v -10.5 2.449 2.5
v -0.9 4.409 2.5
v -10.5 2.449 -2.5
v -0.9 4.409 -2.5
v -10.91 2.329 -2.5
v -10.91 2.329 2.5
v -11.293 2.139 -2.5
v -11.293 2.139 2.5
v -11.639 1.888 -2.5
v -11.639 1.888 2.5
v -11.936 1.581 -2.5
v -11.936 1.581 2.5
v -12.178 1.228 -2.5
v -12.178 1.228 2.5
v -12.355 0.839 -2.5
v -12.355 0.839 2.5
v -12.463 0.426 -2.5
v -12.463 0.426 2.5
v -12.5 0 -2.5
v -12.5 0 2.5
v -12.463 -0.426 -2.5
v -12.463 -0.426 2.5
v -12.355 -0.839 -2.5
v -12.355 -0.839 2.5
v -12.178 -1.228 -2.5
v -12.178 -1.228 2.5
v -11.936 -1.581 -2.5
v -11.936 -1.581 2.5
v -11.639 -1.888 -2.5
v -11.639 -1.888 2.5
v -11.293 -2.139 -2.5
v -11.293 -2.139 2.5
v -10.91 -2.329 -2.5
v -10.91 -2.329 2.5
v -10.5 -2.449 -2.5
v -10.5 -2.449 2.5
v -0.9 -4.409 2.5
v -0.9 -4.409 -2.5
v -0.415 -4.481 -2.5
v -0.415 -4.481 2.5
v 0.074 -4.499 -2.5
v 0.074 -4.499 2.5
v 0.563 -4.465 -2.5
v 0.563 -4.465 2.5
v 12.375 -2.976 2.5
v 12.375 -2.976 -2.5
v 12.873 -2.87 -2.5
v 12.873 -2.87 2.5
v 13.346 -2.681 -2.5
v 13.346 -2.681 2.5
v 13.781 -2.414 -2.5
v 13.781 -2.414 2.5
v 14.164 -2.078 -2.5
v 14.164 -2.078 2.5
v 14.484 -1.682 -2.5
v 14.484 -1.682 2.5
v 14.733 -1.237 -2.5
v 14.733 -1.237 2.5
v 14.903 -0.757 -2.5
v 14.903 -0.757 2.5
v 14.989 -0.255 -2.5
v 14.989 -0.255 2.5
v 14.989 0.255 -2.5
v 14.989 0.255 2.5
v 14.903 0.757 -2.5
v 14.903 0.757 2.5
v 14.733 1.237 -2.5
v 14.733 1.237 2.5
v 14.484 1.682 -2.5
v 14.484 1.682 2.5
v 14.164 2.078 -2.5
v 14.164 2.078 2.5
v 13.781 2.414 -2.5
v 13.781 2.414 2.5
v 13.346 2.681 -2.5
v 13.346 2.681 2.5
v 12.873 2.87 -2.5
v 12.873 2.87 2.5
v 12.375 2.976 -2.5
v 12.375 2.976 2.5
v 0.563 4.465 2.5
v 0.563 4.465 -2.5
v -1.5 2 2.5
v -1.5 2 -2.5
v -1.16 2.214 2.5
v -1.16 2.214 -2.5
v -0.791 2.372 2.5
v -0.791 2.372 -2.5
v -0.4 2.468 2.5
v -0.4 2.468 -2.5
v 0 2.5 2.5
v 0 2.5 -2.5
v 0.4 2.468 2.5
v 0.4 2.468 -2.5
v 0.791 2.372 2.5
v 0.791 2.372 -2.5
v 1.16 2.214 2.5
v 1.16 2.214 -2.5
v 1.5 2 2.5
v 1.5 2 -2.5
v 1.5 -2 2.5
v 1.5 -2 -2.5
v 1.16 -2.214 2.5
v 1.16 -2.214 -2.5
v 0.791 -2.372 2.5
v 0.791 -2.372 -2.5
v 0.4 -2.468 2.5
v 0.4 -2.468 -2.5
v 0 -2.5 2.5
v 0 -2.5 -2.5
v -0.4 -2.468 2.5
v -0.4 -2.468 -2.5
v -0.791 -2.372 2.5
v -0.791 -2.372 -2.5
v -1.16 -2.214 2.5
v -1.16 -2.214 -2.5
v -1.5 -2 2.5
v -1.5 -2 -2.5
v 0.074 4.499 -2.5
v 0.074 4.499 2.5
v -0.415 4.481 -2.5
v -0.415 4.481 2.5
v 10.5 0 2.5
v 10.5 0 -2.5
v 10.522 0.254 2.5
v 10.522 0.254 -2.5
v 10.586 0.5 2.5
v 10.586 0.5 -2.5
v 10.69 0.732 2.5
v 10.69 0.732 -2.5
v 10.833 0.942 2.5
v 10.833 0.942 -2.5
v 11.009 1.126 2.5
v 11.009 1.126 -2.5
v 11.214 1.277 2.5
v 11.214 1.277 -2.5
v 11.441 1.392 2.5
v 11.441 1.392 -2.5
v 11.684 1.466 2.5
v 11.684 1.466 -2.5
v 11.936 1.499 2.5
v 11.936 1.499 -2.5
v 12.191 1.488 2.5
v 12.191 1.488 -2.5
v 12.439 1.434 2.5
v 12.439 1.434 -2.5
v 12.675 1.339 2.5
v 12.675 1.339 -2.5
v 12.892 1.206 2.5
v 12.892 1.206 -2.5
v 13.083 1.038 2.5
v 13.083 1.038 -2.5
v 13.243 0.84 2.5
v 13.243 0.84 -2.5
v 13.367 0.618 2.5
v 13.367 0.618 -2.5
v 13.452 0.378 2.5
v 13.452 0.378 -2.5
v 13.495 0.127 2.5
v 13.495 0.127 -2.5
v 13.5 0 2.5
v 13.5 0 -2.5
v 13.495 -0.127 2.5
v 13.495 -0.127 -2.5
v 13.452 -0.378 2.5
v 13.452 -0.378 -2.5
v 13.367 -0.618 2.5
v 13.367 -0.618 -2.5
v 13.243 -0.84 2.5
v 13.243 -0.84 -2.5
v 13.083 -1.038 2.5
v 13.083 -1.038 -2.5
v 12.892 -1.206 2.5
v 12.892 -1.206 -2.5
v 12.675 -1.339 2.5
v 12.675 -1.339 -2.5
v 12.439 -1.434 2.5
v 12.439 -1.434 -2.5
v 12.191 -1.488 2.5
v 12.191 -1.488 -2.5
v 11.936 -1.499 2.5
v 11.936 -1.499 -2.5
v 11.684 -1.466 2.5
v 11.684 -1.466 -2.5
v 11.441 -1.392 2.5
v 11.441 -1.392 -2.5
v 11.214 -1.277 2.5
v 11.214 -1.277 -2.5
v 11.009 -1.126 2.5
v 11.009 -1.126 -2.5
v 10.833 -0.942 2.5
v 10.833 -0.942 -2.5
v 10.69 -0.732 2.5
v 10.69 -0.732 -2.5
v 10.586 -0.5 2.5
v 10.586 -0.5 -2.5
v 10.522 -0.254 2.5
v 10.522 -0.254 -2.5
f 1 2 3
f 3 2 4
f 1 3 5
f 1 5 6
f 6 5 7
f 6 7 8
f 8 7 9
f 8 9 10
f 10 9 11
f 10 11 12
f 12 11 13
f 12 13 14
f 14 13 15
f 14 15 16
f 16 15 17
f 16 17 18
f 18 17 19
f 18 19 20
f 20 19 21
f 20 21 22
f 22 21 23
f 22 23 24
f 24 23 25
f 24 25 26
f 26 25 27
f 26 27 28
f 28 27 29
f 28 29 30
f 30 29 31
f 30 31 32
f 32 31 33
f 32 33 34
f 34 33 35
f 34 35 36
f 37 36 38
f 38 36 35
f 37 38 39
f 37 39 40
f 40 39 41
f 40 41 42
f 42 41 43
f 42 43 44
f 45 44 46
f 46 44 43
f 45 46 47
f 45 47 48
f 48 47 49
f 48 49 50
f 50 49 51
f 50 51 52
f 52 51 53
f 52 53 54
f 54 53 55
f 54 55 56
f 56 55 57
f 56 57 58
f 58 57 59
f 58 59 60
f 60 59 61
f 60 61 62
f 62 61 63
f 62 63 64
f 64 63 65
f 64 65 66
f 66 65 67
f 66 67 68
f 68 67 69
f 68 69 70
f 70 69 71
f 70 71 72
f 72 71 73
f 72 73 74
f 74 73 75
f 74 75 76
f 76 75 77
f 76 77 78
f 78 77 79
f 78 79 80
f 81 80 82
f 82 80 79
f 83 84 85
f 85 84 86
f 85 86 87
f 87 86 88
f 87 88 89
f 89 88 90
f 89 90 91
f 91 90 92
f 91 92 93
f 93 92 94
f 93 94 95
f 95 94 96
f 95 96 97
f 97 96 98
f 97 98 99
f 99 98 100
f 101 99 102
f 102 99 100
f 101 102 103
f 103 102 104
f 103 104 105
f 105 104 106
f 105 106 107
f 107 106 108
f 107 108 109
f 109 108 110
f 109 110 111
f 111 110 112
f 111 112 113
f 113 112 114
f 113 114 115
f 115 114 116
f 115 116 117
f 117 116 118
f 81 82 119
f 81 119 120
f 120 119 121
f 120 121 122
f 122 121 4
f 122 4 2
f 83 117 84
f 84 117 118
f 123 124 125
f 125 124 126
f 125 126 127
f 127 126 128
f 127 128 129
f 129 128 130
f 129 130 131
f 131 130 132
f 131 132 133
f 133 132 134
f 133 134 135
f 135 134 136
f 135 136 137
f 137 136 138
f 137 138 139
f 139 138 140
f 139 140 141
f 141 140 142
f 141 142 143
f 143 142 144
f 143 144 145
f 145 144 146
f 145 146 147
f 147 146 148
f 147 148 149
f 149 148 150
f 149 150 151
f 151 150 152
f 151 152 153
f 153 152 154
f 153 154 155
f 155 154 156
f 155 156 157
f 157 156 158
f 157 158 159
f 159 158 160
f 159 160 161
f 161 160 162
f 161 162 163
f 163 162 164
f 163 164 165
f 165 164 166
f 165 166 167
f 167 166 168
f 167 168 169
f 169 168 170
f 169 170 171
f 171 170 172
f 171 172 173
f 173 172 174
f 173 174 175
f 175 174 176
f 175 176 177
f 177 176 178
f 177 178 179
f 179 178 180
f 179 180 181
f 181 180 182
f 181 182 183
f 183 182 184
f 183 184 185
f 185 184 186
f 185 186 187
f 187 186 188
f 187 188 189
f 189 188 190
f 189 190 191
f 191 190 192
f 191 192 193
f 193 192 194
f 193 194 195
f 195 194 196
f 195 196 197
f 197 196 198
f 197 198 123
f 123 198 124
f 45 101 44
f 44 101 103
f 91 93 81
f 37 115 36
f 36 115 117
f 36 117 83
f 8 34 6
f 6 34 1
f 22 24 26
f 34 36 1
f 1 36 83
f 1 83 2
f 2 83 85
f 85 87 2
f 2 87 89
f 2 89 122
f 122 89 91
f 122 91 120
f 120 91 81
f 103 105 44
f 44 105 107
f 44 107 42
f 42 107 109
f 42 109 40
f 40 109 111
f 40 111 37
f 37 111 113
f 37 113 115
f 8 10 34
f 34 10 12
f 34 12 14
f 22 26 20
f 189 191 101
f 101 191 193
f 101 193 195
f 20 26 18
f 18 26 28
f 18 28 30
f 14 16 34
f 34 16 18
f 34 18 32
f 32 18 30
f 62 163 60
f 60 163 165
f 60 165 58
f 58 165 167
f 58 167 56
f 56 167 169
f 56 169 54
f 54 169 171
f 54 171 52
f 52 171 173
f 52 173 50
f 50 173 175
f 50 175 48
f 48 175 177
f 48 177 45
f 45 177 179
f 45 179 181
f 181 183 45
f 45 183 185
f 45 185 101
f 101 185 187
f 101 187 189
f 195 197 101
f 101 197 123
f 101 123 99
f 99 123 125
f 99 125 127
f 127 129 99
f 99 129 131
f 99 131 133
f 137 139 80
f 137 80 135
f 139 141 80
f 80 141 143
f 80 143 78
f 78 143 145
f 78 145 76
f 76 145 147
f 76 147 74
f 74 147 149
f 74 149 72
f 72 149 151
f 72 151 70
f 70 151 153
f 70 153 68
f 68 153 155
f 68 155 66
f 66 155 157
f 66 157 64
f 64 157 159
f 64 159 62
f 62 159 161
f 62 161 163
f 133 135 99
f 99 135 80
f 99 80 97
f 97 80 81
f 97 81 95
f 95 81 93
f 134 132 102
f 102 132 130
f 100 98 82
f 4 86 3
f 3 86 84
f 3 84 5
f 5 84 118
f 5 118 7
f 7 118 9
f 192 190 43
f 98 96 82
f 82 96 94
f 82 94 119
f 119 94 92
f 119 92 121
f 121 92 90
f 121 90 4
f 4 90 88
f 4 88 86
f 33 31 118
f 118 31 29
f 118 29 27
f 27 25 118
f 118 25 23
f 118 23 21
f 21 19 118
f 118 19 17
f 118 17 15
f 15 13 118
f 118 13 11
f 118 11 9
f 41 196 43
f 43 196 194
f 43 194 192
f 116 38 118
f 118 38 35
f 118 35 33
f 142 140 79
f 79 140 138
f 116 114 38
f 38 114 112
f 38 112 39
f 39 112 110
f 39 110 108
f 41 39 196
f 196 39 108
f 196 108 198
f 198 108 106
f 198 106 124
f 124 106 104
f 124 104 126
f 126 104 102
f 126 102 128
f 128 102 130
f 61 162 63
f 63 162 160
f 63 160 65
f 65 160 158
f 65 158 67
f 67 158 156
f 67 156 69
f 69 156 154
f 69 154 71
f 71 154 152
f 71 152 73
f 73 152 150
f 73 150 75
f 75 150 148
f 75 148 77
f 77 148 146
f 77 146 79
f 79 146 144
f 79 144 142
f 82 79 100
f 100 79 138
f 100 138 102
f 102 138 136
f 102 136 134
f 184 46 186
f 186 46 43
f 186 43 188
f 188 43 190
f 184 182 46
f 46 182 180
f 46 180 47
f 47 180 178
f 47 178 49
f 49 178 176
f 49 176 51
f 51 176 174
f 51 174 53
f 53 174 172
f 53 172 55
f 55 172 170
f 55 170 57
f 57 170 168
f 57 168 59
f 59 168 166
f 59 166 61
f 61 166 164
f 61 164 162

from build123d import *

# Parameters (mm, degrees)
SKETCH_1_R      = 2.5
SKETCH_1_R_2    = 4.5
SKETCH_1_R_3    = 3
SKETCH_1_R_4    = 1.5
EXTRUDE_1_DEPTH = 2.5


with BuildPart() as part:
    # Эскиз1 → Бобышка-Вытянуть1 (new, symmetric)
    # profile 1 of 7: a face of its own
    with BuildSketch(Plane.XY):
        with BuildLine():
            ThreePointArc((-0.9, -4.409081537), (-4.5, 0), (-0.9, 4.409081537))
            Line((-0.9, 4.409081537), (-10.5, 2.449489743))
            ThreePointArc((-10.5, 2.449489743), (-8.41886117, 1.936491673), (-7.5, 0))
            ThreePointArc((-7.5, 0), (-8.41886117, -1.936491673), (-10.5, -2.449489743))
            Line((-10.5, -2.449489743), (-0.9, -4.409081537))
        make_face()
    # profile 2 of 7: a face of its own
    with BuildSketch(Plane.XY):
        with Locations((-10, 0)):
            Circle(SKETCH_1_R)
    # profile 3 of 7: a face of its own
    with BuildSketch(Plane.XY):
        Circle(SKETCH_1_R_2)
        Circle(SKETCH_1_R, mode=Mode.SUBTRACT)
    # profile 4 of 7: a face of its own
    with BuildSketch(Plane.XY):
        with BuildLine():
            Line((12.375, 2.976470225), (0.5625, 4.464705337))
            ThreePointArc((0.5625, 4.464705337), (3.375, 2.976470225), (4.5, 0))
            ThreePointArc((4.5, 0), (3.375, -2.976470225), (0.5625, -4.464705337))
            Line((0.5625, -4.464705337), (12.375, -2.976470225))
            ThreePointArc((12.375, -2.976470225), (9, 0), (12.375, 2.976470225))
        make_face()
    # profile 5 of 7: a face of its own
    with BuildSketch(Plane.XY):
        with Locations((12, 0)):
            Circle(SKETCH_1_R_3)
        with Locations((12, 0)):
            Circle(SKETCH_1_R_4, mode=Mode.SUBTRACT)
    # profile 6 of 7: a face of its own
    with BuildSketch(Plane.XY):
        with BuildLine():
            Line((-1.5, -2), (-1.5, 2))
            ThreePointArc((-1.5, 2), (-2.5, 0), (-1.5, -2))
        make_face()
    # profile 7 of 7: a face of its own
    with BuildSketch(Plane.XY):
        with BuildLine():
            ThreePointArc((2.5, 0), (2.236067977, 1.118033989), (1.5, 2))
            Line((1.5, 2), (1.5, -2))
            ThreePointArc((1.5, -2), (2.236067977, -1.118033989), (2.5, 0))
        make_face()
    extrude(amount=EXTRUDE_1_DEPTH, both=True)


solid = part.part
